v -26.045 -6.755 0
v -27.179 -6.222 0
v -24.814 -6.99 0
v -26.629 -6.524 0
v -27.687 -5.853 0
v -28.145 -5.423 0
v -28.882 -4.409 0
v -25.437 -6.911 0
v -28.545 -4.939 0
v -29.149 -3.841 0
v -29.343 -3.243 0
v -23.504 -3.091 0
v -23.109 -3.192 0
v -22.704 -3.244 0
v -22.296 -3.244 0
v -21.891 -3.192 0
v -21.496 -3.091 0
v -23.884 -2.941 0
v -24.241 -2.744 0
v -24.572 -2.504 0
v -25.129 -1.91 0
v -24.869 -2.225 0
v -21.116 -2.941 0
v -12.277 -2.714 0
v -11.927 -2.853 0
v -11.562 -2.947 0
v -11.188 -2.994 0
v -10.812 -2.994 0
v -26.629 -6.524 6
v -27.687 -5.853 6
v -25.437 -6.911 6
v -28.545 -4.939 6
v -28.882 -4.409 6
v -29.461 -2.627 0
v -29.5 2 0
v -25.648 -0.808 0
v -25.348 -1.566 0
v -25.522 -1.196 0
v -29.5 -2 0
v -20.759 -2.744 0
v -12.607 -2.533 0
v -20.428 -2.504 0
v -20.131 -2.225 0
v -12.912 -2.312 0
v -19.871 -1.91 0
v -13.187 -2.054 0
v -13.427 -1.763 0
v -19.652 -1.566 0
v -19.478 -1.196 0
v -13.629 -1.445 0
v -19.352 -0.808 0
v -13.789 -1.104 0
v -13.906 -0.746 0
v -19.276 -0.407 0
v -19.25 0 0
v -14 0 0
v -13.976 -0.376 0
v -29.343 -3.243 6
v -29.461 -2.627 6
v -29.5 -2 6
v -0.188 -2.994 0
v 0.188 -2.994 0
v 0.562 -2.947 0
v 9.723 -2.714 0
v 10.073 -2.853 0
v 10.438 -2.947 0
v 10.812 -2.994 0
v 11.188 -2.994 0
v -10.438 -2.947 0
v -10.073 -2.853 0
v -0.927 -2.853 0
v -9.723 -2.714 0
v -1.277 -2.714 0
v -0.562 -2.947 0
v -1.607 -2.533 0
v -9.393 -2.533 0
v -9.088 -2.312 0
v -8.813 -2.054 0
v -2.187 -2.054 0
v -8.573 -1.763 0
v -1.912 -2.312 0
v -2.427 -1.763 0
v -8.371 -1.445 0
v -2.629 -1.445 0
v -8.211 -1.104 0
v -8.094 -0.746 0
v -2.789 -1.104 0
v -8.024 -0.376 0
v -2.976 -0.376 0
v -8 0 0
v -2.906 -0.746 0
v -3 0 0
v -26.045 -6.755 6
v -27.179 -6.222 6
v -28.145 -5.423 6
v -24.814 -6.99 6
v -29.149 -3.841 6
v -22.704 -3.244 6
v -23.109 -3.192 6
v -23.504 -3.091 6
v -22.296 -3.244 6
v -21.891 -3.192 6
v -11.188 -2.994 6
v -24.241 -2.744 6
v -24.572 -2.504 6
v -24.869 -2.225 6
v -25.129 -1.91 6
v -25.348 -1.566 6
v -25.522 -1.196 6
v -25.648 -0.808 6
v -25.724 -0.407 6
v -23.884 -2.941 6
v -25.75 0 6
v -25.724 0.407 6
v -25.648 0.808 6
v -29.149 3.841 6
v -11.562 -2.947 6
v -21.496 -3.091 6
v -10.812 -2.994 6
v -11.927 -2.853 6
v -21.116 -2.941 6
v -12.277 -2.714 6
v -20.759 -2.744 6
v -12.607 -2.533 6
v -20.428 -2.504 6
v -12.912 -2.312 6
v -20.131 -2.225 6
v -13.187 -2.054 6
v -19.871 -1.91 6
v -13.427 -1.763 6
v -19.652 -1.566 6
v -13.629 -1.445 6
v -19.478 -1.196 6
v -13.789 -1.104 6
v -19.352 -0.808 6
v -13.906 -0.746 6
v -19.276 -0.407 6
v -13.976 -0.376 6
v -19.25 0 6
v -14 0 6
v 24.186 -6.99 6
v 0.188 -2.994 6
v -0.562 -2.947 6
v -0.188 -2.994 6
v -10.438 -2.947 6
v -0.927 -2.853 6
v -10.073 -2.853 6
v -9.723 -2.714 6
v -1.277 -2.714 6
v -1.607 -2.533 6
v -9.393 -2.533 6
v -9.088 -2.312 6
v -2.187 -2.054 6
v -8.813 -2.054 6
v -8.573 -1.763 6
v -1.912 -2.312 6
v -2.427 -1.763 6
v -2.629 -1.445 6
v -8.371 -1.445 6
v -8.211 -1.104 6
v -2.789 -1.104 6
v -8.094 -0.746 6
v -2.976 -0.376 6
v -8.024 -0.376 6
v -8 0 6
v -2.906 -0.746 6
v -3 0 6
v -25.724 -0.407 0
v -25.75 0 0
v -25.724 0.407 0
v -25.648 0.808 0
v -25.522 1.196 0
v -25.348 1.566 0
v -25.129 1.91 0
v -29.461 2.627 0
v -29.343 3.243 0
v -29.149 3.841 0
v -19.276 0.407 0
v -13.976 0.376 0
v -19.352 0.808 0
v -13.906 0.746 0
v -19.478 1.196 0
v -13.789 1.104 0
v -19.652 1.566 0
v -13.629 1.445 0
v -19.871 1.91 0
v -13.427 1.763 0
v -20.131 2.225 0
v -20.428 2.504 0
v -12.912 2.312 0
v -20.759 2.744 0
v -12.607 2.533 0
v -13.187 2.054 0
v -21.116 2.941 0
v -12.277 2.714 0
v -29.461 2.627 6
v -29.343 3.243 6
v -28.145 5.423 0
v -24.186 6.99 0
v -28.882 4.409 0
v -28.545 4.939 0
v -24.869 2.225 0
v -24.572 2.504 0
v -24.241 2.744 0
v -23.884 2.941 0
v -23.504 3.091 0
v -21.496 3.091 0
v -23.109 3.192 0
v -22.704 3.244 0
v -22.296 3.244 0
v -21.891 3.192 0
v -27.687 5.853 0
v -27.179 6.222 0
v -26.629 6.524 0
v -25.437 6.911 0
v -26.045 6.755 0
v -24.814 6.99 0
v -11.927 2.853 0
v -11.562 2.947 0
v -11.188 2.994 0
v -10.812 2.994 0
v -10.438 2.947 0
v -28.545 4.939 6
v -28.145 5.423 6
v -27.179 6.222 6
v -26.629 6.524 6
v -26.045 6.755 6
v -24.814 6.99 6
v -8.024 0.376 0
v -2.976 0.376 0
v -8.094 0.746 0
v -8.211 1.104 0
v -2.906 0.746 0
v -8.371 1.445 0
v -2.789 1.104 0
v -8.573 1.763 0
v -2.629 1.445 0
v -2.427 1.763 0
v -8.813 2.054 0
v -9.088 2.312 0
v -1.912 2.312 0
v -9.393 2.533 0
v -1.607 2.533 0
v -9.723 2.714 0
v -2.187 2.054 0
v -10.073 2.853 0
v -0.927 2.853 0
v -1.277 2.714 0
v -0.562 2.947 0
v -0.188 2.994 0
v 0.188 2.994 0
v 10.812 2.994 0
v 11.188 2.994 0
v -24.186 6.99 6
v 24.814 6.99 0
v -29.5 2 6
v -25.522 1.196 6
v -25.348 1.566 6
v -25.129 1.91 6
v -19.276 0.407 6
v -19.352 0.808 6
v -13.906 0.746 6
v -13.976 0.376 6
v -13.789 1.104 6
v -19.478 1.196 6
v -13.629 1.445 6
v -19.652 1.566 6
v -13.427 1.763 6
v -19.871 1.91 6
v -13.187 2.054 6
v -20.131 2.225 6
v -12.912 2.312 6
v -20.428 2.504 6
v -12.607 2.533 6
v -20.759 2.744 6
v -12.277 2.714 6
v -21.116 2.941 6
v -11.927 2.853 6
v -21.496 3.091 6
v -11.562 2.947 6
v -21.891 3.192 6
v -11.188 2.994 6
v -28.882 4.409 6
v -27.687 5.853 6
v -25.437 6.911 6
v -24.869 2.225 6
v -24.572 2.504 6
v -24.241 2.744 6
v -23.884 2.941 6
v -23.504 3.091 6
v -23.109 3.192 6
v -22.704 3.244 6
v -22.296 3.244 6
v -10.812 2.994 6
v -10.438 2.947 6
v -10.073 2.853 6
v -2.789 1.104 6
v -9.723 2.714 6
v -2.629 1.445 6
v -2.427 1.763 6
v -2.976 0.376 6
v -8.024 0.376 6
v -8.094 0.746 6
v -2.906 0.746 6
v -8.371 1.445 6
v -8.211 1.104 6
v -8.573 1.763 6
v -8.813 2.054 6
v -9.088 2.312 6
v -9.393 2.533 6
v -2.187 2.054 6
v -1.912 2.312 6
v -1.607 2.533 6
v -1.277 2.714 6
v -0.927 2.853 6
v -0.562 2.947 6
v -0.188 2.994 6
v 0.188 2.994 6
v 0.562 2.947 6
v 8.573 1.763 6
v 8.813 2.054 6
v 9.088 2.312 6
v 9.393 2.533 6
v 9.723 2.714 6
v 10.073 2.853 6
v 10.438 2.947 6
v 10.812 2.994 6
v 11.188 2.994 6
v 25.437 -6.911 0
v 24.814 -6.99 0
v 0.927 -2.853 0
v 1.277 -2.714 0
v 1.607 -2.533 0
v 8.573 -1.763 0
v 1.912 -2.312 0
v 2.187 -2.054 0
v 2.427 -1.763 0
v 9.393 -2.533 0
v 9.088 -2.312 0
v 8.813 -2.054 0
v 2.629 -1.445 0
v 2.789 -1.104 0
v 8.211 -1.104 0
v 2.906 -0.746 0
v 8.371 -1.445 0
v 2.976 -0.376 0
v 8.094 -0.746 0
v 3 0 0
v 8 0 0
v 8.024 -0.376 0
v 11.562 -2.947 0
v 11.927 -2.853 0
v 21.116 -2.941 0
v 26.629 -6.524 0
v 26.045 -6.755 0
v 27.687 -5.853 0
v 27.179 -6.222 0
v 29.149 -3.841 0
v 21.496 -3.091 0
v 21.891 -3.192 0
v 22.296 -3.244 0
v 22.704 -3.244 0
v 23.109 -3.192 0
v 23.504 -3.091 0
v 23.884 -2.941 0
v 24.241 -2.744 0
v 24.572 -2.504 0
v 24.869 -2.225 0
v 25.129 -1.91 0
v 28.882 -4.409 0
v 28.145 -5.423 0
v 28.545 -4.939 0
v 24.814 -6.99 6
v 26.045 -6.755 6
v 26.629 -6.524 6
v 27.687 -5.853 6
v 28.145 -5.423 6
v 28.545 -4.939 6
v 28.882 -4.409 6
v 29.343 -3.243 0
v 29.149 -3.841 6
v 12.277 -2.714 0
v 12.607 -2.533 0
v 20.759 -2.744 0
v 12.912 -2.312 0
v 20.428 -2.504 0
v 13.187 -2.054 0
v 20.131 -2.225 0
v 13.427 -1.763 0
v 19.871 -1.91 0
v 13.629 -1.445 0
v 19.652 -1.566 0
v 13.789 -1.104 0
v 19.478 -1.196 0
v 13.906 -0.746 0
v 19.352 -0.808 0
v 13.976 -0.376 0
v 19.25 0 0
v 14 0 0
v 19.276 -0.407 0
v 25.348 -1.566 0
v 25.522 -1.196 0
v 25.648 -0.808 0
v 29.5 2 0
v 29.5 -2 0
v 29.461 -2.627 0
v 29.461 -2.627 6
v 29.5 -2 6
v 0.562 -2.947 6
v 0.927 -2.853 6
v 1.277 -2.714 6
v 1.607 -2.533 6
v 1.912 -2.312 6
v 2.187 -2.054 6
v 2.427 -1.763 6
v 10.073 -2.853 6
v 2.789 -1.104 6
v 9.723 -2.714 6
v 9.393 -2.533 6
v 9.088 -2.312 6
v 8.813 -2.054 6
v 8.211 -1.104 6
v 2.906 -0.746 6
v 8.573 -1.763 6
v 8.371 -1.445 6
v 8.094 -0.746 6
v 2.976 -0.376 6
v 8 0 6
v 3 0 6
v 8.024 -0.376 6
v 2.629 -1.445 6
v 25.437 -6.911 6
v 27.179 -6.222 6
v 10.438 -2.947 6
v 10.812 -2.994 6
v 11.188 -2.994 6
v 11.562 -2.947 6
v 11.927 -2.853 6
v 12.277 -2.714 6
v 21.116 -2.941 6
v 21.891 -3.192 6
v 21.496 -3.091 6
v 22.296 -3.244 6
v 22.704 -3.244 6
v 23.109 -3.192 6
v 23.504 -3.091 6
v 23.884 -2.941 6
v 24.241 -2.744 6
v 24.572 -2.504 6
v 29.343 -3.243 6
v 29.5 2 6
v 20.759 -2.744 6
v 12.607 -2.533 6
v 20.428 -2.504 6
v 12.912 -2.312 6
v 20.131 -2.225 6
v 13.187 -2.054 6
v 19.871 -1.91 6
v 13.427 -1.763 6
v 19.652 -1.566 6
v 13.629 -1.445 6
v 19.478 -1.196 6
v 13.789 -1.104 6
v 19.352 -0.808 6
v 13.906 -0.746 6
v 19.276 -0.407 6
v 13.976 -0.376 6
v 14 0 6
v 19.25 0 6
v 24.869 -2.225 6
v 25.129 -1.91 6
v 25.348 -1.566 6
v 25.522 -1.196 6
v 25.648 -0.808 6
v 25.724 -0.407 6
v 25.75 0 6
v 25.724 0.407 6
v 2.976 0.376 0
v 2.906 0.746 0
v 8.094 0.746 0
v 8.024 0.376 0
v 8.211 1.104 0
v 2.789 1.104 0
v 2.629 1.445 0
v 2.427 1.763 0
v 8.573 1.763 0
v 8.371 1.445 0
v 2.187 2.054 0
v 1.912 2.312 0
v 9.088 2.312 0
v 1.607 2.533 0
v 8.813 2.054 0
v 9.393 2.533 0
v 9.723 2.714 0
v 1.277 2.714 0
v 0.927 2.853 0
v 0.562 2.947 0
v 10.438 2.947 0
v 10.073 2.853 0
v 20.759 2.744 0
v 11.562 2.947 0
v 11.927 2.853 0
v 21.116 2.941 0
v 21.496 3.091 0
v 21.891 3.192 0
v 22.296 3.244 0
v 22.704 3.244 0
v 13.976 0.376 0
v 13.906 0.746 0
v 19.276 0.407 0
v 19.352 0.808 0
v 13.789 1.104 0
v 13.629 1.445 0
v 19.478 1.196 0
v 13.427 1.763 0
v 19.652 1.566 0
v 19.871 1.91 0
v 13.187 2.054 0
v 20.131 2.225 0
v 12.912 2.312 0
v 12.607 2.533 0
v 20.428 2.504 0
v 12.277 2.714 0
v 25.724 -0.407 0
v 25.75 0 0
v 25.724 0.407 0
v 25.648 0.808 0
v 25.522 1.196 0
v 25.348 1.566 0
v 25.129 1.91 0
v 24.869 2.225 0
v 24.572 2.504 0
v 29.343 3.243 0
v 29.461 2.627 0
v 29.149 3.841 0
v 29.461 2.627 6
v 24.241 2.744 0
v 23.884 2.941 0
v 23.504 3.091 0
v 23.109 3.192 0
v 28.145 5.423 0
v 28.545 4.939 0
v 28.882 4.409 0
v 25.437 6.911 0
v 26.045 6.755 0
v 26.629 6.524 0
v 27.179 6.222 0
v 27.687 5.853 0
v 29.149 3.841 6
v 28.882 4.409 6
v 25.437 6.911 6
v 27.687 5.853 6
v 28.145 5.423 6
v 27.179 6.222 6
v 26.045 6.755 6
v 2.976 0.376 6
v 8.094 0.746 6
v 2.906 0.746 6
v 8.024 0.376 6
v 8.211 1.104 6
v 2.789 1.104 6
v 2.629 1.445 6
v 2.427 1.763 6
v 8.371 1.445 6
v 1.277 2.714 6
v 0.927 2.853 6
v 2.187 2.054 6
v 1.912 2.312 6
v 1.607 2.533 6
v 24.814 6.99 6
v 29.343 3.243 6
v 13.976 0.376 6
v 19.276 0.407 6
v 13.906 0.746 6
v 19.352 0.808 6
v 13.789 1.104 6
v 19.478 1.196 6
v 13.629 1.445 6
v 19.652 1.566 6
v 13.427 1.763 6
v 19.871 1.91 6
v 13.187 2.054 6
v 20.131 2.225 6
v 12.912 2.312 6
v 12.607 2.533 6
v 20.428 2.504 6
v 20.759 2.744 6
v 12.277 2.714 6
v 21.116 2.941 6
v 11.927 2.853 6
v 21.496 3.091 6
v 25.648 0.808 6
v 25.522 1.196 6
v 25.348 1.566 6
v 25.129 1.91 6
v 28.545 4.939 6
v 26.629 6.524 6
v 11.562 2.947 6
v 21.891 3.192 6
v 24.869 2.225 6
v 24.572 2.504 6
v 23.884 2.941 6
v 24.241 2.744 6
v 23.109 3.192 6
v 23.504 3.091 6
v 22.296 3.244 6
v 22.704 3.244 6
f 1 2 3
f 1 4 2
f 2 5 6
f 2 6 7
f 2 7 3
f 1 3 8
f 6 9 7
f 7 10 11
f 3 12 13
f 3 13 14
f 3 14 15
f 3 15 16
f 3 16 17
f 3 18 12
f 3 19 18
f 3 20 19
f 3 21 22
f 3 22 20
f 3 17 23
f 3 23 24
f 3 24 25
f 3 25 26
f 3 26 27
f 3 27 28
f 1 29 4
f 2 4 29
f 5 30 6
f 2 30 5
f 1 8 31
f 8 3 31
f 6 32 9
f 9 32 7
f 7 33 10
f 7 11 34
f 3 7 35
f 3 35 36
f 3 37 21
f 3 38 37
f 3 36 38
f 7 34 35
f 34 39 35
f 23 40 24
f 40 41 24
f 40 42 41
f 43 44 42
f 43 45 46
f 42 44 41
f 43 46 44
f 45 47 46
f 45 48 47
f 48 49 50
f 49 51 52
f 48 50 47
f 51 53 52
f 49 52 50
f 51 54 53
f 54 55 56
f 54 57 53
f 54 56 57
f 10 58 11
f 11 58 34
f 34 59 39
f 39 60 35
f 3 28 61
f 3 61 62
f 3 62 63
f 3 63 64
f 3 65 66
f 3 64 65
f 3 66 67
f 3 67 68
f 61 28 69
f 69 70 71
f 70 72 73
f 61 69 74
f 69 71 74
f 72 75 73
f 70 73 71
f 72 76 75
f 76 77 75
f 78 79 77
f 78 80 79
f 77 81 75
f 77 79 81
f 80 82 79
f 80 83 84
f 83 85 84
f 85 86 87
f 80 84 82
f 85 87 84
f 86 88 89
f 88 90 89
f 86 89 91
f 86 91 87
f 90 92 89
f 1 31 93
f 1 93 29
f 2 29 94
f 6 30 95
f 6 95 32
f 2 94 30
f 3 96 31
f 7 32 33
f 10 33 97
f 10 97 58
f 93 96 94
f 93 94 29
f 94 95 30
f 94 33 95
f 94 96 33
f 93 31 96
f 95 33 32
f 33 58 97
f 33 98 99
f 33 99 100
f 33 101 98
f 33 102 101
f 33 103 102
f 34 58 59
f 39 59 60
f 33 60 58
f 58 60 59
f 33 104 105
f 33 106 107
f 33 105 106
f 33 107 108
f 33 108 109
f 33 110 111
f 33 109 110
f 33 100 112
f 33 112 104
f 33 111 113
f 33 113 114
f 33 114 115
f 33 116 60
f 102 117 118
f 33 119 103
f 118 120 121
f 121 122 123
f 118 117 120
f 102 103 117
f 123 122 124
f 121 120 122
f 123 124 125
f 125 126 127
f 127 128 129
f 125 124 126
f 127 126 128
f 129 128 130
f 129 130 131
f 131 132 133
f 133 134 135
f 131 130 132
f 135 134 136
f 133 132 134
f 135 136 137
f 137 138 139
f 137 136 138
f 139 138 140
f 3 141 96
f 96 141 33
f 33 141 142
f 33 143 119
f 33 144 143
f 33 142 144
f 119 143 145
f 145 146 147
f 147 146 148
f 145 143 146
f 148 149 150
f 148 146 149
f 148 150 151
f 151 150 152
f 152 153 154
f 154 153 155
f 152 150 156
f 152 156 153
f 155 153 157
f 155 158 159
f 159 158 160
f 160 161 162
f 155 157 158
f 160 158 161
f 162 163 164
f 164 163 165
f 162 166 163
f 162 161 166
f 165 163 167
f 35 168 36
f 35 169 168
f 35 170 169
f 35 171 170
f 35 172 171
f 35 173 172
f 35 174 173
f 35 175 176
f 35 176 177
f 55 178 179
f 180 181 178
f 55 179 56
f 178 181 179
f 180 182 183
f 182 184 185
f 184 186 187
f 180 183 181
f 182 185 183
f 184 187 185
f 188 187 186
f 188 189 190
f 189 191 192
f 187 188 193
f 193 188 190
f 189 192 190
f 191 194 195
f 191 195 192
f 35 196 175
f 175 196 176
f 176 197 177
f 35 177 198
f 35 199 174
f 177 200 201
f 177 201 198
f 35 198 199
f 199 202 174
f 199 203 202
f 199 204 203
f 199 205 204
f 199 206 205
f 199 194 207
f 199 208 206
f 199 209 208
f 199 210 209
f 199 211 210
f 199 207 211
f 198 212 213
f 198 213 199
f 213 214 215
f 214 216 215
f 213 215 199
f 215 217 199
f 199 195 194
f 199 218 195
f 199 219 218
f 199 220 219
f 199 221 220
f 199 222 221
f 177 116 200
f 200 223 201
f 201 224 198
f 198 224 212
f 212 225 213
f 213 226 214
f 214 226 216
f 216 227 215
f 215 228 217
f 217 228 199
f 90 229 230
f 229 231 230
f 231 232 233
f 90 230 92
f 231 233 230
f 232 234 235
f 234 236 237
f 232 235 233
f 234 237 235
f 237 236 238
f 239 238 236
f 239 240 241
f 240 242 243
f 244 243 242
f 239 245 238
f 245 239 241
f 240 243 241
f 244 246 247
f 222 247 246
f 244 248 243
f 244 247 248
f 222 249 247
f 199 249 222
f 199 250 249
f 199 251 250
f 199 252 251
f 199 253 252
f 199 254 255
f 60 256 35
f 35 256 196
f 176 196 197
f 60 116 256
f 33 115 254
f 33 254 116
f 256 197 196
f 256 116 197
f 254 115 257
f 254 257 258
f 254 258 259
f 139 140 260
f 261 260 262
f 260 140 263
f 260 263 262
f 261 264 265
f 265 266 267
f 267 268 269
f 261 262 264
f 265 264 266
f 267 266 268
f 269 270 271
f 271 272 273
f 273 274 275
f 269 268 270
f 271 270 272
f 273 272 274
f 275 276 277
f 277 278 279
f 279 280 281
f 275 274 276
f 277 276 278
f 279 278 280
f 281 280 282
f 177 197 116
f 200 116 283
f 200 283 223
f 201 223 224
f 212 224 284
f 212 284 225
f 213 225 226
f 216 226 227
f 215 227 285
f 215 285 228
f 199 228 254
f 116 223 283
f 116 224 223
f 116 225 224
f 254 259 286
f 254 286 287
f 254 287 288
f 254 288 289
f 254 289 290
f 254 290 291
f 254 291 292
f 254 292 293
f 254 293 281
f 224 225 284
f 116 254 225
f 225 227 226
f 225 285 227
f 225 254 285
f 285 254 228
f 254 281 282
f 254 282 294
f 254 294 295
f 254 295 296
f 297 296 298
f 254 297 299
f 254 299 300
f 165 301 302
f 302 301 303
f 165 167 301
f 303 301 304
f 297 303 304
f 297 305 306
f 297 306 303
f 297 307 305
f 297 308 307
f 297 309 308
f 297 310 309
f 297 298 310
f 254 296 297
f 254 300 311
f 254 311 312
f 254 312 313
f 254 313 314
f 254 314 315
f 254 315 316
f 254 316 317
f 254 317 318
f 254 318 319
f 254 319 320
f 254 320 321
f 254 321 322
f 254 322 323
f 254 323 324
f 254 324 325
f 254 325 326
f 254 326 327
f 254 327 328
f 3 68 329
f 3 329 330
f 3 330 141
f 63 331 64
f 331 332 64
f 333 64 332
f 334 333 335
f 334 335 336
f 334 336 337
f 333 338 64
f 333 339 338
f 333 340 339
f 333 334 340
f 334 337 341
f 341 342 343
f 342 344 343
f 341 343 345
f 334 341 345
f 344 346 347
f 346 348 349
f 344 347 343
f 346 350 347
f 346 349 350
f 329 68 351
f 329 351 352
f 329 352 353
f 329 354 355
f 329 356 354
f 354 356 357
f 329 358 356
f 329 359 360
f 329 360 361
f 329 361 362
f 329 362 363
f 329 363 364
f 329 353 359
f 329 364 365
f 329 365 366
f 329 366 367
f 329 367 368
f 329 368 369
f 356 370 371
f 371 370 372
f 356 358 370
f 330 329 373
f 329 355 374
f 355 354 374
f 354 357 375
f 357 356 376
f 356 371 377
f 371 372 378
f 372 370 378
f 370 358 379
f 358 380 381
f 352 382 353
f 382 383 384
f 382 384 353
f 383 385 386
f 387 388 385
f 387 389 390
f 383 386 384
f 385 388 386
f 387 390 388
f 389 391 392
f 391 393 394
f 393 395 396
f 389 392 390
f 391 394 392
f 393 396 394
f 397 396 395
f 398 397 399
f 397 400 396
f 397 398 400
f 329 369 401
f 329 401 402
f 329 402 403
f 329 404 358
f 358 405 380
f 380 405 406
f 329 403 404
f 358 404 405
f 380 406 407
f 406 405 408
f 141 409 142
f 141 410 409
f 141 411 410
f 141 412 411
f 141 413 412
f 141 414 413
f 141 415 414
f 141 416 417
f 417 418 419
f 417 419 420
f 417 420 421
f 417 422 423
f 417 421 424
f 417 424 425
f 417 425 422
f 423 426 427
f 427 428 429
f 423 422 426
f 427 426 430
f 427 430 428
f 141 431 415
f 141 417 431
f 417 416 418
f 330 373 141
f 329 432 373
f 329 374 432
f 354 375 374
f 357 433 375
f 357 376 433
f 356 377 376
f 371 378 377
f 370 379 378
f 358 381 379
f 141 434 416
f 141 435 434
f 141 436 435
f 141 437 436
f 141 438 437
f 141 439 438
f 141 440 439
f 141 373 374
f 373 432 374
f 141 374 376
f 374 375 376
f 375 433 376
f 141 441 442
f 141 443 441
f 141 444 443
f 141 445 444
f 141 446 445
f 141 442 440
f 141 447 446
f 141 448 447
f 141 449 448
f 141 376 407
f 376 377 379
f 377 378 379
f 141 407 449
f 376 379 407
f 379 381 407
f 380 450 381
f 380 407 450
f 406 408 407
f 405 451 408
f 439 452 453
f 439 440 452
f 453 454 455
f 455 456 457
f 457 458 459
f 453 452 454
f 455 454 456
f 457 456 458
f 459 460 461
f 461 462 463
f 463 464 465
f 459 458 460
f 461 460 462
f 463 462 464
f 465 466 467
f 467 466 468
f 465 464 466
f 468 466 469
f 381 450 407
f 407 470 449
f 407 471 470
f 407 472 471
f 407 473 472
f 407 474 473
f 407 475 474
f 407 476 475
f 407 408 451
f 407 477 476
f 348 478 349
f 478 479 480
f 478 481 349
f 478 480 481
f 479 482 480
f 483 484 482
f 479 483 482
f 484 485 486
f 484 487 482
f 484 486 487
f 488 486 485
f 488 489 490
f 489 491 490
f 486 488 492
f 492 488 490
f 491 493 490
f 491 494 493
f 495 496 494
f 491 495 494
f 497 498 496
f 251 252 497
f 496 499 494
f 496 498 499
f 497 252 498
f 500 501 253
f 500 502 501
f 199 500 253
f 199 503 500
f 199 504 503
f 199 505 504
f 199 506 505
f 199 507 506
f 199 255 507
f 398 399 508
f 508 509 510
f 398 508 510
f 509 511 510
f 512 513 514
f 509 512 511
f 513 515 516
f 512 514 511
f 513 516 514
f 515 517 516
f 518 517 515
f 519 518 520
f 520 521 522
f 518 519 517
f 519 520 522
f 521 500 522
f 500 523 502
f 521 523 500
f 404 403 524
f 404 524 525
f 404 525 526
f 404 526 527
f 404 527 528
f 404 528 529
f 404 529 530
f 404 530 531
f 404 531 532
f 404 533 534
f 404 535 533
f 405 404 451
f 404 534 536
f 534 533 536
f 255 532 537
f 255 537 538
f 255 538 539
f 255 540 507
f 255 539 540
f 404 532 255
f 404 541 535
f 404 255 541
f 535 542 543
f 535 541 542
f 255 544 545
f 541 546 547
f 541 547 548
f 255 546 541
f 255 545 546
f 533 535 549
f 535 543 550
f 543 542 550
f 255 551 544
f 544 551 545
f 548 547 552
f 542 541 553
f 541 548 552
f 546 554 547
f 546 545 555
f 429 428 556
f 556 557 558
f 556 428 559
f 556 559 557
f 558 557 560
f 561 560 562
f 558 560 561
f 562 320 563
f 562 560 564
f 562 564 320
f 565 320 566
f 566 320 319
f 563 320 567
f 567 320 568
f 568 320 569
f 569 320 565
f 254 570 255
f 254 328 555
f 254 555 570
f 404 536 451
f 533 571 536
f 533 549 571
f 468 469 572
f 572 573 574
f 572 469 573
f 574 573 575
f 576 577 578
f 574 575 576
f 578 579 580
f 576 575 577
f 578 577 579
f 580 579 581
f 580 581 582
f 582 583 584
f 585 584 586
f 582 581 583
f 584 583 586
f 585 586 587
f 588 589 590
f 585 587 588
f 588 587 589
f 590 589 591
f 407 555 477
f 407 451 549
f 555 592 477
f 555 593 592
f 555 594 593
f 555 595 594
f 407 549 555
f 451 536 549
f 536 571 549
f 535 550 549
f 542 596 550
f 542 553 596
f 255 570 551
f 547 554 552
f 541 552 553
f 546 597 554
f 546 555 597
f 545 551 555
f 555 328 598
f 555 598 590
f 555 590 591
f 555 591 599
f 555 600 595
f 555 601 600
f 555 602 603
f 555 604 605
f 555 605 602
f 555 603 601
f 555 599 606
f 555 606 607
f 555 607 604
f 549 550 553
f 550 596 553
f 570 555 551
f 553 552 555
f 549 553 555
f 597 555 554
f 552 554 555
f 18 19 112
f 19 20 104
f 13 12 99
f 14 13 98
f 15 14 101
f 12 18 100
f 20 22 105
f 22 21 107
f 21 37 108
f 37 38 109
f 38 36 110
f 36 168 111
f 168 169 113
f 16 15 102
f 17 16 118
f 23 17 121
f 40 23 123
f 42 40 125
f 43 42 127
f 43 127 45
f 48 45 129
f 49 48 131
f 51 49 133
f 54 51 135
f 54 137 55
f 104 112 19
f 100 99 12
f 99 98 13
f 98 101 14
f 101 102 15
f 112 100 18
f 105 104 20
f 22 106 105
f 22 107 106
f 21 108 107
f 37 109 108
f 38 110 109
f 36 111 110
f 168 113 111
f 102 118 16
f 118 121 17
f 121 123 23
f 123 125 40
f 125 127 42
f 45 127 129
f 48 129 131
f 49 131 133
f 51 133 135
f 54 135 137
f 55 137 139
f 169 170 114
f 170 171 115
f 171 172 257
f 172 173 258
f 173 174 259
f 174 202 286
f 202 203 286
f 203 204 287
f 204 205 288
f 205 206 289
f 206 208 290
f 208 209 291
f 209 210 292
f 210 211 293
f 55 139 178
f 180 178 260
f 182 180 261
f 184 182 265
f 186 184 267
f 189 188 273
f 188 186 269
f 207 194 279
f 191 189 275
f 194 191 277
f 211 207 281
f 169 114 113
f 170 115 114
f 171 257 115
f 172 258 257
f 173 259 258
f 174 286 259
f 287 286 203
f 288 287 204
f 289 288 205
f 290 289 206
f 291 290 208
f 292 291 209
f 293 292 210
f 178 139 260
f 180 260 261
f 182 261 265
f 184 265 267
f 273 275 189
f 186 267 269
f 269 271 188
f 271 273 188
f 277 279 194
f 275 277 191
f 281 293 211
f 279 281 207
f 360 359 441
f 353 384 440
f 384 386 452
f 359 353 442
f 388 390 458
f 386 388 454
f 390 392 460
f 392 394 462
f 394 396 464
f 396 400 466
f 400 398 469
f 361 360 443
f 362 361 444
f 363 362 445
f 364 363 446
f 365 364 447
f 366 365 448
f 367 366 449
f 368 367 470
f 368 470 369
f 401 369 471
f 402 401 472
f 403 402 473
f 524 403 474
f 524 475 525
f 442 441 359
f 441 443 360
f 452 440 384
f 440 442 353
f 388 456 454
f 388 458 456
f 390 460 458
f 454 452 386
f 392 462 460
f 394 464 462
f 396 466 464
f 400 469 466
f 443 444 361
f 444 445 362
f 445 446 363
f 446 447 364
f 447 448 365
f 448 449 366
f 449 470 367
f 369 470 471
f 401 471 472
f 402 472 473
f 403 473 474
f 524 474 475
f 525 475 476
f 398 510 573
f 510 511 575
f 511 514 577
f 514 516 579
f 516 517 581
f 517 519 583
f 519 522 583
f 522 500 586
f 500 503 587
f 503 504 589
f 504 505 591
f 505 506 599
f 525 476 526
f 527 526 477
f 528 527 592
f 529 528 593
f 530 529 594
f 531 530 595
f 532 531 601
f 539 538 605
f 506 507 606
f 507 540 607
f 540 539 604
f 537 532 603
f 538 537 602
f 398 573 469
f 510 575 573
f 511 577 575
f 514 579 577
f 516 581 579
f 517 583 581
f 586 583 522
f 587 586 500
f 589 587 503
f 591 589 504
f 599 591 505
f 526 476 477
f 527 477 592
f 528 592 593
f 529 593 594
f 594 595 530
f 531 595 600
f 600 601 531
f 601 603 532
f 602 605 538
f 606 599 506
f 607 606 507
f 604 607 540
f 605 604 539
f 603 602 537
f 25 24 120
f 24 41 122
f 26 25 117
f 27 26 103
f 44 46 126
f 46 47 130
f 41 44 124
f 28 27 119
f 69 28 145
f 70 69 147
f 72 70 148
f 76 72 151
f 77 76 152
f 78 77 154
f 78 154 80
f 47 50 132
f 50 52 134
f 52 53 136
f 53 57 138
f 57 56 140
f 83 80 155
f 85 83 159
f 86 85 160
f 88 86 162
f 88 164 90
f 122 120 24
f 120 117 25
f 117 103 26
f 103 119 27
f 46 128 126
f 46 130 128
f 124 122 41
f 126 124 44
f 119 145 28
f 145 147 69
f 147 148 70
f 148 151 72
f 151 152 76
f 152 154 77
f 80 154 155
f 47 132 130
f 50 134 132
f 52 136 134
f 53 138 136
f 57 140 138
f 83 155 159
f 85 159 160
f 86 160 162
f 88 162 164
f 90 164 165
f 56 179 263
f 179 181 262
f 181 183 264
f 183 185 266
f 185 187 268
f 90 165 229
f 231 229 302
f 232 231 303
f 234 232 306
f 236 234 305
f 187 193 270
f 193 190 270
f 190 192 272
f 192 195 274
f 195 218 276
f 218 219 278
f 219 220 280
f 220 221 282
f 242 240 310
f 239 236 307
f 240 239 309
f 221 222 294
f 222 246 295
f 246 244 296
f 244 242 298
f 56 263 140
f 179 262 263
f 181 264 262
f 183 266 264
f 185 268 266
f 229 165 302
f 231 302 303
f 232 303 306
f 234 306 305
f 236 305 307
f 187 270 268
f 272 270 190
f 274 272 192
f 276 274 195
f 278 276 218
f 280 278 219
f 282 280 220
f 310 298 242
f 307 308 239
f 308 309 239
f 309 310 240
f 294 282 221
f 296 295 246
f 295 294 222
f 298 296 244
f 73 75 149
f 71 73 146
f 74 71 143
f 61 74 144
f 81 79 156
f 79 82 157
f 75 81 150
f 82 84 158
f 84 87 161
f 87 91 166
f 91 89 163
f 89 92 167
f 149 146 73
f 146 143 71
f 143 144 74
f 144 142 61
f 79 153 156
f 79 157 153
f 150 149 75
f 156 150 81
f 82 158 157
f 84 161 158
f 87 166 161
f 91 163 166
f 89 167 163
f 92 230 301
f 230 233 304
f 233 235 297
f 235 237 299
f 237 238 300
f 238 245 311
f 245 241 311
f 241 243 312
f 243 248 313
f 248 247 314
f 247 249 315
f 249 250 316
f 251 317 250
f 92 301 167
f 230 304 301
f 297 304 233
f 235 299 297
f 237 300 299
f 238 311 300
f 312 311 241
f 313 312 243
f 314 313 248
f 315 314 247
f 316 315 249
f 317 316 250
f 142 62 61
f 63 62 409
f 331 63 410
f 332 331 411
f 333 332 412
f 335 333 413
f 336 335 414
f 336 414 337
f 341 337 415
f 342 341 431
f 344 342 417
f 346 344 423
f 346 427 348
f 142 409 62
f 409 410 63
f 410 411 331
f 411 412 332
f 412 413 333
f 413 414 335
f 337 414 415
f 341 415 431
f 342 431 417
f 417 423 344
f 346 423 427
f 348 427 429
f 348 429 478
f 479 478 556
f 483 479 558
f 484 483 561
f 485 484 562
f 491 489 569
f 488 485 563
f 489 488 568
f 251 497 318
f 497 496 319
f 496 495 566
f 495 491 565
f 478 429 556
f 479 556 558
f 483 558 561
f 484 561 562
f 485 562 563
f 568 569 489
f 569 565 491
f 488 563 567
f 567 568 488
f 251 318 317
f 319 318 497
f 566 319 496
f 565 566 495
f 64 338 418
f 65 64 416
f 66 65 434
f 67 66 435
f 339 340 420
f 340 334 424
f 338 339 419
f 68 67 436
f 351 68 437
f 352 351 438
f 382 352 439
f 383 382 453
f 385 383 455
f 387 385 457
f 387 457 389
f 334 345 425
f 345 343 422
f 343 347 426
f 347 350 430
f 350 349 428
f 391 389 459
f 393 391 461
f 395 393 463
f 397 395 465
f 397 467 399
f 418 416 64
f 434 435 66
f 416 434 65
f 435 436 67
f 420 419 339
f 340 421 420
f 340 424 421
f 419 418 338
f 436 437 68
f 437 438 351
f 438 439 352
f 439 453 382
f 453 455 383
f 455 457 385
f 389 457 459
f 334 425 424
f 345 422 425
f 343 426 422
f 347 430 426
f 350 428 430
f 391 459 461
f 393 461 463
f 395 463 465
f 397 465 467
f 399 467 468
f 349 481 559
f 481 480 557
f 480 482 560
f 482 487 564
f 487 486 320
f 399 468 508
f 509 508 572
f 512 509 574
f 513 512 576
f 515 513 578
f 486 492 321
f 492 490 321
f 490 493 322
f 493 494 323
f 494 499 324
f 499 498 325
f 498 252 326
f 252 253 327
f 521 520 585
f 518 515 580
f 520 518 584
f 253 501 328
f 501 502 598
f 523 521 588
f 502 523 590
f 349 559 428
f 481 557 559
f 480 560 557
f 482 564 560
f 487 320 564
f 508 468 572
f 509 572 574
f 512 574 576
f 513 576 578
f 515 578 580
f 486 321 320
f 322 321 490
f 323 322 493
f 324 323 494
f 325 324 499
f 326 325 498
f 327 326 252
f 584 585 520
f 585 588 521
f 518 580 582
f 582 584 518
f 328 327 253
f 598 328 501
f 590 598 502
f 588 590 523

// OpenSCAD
$fn = 50;

difference() {
	union() {
		hull() {
			translate(v = [-24.5, 2.0, 0]) {
				cylinder(h = 6, r = 5);
			}
			translate(v = [24.5, 2.0, 0]) {
				cylinder(h = 6, r = 5);
			}
			translate(v = [-24.5, -2.0, 0]) {
				cylinder(h = 6, r = 5);
			}
			translate(v = [24.5, -2.0, 0]) {
				cylinder(h = 6, r = 5);
			}
		}
	}
	union() {
		translate(v = [-22.5, 0.0, 0]) {
			cylinder(h = 6, r = 3.25);
		}
		translate(v = [22.5, 0.0, 0]) {
			cylinder(h = 6, r = 3.25);
		}
		translate(v = [-11.0, 0, 0.0]) {
			cylinder(h = 6, r = 3.0);
		}
		cylinder(h = 6, r = 3.0);
		translate(v = [11.0, 0, 0.0]) {
			cylinder(h = 6, r = 3.0);
		}
	}
}
